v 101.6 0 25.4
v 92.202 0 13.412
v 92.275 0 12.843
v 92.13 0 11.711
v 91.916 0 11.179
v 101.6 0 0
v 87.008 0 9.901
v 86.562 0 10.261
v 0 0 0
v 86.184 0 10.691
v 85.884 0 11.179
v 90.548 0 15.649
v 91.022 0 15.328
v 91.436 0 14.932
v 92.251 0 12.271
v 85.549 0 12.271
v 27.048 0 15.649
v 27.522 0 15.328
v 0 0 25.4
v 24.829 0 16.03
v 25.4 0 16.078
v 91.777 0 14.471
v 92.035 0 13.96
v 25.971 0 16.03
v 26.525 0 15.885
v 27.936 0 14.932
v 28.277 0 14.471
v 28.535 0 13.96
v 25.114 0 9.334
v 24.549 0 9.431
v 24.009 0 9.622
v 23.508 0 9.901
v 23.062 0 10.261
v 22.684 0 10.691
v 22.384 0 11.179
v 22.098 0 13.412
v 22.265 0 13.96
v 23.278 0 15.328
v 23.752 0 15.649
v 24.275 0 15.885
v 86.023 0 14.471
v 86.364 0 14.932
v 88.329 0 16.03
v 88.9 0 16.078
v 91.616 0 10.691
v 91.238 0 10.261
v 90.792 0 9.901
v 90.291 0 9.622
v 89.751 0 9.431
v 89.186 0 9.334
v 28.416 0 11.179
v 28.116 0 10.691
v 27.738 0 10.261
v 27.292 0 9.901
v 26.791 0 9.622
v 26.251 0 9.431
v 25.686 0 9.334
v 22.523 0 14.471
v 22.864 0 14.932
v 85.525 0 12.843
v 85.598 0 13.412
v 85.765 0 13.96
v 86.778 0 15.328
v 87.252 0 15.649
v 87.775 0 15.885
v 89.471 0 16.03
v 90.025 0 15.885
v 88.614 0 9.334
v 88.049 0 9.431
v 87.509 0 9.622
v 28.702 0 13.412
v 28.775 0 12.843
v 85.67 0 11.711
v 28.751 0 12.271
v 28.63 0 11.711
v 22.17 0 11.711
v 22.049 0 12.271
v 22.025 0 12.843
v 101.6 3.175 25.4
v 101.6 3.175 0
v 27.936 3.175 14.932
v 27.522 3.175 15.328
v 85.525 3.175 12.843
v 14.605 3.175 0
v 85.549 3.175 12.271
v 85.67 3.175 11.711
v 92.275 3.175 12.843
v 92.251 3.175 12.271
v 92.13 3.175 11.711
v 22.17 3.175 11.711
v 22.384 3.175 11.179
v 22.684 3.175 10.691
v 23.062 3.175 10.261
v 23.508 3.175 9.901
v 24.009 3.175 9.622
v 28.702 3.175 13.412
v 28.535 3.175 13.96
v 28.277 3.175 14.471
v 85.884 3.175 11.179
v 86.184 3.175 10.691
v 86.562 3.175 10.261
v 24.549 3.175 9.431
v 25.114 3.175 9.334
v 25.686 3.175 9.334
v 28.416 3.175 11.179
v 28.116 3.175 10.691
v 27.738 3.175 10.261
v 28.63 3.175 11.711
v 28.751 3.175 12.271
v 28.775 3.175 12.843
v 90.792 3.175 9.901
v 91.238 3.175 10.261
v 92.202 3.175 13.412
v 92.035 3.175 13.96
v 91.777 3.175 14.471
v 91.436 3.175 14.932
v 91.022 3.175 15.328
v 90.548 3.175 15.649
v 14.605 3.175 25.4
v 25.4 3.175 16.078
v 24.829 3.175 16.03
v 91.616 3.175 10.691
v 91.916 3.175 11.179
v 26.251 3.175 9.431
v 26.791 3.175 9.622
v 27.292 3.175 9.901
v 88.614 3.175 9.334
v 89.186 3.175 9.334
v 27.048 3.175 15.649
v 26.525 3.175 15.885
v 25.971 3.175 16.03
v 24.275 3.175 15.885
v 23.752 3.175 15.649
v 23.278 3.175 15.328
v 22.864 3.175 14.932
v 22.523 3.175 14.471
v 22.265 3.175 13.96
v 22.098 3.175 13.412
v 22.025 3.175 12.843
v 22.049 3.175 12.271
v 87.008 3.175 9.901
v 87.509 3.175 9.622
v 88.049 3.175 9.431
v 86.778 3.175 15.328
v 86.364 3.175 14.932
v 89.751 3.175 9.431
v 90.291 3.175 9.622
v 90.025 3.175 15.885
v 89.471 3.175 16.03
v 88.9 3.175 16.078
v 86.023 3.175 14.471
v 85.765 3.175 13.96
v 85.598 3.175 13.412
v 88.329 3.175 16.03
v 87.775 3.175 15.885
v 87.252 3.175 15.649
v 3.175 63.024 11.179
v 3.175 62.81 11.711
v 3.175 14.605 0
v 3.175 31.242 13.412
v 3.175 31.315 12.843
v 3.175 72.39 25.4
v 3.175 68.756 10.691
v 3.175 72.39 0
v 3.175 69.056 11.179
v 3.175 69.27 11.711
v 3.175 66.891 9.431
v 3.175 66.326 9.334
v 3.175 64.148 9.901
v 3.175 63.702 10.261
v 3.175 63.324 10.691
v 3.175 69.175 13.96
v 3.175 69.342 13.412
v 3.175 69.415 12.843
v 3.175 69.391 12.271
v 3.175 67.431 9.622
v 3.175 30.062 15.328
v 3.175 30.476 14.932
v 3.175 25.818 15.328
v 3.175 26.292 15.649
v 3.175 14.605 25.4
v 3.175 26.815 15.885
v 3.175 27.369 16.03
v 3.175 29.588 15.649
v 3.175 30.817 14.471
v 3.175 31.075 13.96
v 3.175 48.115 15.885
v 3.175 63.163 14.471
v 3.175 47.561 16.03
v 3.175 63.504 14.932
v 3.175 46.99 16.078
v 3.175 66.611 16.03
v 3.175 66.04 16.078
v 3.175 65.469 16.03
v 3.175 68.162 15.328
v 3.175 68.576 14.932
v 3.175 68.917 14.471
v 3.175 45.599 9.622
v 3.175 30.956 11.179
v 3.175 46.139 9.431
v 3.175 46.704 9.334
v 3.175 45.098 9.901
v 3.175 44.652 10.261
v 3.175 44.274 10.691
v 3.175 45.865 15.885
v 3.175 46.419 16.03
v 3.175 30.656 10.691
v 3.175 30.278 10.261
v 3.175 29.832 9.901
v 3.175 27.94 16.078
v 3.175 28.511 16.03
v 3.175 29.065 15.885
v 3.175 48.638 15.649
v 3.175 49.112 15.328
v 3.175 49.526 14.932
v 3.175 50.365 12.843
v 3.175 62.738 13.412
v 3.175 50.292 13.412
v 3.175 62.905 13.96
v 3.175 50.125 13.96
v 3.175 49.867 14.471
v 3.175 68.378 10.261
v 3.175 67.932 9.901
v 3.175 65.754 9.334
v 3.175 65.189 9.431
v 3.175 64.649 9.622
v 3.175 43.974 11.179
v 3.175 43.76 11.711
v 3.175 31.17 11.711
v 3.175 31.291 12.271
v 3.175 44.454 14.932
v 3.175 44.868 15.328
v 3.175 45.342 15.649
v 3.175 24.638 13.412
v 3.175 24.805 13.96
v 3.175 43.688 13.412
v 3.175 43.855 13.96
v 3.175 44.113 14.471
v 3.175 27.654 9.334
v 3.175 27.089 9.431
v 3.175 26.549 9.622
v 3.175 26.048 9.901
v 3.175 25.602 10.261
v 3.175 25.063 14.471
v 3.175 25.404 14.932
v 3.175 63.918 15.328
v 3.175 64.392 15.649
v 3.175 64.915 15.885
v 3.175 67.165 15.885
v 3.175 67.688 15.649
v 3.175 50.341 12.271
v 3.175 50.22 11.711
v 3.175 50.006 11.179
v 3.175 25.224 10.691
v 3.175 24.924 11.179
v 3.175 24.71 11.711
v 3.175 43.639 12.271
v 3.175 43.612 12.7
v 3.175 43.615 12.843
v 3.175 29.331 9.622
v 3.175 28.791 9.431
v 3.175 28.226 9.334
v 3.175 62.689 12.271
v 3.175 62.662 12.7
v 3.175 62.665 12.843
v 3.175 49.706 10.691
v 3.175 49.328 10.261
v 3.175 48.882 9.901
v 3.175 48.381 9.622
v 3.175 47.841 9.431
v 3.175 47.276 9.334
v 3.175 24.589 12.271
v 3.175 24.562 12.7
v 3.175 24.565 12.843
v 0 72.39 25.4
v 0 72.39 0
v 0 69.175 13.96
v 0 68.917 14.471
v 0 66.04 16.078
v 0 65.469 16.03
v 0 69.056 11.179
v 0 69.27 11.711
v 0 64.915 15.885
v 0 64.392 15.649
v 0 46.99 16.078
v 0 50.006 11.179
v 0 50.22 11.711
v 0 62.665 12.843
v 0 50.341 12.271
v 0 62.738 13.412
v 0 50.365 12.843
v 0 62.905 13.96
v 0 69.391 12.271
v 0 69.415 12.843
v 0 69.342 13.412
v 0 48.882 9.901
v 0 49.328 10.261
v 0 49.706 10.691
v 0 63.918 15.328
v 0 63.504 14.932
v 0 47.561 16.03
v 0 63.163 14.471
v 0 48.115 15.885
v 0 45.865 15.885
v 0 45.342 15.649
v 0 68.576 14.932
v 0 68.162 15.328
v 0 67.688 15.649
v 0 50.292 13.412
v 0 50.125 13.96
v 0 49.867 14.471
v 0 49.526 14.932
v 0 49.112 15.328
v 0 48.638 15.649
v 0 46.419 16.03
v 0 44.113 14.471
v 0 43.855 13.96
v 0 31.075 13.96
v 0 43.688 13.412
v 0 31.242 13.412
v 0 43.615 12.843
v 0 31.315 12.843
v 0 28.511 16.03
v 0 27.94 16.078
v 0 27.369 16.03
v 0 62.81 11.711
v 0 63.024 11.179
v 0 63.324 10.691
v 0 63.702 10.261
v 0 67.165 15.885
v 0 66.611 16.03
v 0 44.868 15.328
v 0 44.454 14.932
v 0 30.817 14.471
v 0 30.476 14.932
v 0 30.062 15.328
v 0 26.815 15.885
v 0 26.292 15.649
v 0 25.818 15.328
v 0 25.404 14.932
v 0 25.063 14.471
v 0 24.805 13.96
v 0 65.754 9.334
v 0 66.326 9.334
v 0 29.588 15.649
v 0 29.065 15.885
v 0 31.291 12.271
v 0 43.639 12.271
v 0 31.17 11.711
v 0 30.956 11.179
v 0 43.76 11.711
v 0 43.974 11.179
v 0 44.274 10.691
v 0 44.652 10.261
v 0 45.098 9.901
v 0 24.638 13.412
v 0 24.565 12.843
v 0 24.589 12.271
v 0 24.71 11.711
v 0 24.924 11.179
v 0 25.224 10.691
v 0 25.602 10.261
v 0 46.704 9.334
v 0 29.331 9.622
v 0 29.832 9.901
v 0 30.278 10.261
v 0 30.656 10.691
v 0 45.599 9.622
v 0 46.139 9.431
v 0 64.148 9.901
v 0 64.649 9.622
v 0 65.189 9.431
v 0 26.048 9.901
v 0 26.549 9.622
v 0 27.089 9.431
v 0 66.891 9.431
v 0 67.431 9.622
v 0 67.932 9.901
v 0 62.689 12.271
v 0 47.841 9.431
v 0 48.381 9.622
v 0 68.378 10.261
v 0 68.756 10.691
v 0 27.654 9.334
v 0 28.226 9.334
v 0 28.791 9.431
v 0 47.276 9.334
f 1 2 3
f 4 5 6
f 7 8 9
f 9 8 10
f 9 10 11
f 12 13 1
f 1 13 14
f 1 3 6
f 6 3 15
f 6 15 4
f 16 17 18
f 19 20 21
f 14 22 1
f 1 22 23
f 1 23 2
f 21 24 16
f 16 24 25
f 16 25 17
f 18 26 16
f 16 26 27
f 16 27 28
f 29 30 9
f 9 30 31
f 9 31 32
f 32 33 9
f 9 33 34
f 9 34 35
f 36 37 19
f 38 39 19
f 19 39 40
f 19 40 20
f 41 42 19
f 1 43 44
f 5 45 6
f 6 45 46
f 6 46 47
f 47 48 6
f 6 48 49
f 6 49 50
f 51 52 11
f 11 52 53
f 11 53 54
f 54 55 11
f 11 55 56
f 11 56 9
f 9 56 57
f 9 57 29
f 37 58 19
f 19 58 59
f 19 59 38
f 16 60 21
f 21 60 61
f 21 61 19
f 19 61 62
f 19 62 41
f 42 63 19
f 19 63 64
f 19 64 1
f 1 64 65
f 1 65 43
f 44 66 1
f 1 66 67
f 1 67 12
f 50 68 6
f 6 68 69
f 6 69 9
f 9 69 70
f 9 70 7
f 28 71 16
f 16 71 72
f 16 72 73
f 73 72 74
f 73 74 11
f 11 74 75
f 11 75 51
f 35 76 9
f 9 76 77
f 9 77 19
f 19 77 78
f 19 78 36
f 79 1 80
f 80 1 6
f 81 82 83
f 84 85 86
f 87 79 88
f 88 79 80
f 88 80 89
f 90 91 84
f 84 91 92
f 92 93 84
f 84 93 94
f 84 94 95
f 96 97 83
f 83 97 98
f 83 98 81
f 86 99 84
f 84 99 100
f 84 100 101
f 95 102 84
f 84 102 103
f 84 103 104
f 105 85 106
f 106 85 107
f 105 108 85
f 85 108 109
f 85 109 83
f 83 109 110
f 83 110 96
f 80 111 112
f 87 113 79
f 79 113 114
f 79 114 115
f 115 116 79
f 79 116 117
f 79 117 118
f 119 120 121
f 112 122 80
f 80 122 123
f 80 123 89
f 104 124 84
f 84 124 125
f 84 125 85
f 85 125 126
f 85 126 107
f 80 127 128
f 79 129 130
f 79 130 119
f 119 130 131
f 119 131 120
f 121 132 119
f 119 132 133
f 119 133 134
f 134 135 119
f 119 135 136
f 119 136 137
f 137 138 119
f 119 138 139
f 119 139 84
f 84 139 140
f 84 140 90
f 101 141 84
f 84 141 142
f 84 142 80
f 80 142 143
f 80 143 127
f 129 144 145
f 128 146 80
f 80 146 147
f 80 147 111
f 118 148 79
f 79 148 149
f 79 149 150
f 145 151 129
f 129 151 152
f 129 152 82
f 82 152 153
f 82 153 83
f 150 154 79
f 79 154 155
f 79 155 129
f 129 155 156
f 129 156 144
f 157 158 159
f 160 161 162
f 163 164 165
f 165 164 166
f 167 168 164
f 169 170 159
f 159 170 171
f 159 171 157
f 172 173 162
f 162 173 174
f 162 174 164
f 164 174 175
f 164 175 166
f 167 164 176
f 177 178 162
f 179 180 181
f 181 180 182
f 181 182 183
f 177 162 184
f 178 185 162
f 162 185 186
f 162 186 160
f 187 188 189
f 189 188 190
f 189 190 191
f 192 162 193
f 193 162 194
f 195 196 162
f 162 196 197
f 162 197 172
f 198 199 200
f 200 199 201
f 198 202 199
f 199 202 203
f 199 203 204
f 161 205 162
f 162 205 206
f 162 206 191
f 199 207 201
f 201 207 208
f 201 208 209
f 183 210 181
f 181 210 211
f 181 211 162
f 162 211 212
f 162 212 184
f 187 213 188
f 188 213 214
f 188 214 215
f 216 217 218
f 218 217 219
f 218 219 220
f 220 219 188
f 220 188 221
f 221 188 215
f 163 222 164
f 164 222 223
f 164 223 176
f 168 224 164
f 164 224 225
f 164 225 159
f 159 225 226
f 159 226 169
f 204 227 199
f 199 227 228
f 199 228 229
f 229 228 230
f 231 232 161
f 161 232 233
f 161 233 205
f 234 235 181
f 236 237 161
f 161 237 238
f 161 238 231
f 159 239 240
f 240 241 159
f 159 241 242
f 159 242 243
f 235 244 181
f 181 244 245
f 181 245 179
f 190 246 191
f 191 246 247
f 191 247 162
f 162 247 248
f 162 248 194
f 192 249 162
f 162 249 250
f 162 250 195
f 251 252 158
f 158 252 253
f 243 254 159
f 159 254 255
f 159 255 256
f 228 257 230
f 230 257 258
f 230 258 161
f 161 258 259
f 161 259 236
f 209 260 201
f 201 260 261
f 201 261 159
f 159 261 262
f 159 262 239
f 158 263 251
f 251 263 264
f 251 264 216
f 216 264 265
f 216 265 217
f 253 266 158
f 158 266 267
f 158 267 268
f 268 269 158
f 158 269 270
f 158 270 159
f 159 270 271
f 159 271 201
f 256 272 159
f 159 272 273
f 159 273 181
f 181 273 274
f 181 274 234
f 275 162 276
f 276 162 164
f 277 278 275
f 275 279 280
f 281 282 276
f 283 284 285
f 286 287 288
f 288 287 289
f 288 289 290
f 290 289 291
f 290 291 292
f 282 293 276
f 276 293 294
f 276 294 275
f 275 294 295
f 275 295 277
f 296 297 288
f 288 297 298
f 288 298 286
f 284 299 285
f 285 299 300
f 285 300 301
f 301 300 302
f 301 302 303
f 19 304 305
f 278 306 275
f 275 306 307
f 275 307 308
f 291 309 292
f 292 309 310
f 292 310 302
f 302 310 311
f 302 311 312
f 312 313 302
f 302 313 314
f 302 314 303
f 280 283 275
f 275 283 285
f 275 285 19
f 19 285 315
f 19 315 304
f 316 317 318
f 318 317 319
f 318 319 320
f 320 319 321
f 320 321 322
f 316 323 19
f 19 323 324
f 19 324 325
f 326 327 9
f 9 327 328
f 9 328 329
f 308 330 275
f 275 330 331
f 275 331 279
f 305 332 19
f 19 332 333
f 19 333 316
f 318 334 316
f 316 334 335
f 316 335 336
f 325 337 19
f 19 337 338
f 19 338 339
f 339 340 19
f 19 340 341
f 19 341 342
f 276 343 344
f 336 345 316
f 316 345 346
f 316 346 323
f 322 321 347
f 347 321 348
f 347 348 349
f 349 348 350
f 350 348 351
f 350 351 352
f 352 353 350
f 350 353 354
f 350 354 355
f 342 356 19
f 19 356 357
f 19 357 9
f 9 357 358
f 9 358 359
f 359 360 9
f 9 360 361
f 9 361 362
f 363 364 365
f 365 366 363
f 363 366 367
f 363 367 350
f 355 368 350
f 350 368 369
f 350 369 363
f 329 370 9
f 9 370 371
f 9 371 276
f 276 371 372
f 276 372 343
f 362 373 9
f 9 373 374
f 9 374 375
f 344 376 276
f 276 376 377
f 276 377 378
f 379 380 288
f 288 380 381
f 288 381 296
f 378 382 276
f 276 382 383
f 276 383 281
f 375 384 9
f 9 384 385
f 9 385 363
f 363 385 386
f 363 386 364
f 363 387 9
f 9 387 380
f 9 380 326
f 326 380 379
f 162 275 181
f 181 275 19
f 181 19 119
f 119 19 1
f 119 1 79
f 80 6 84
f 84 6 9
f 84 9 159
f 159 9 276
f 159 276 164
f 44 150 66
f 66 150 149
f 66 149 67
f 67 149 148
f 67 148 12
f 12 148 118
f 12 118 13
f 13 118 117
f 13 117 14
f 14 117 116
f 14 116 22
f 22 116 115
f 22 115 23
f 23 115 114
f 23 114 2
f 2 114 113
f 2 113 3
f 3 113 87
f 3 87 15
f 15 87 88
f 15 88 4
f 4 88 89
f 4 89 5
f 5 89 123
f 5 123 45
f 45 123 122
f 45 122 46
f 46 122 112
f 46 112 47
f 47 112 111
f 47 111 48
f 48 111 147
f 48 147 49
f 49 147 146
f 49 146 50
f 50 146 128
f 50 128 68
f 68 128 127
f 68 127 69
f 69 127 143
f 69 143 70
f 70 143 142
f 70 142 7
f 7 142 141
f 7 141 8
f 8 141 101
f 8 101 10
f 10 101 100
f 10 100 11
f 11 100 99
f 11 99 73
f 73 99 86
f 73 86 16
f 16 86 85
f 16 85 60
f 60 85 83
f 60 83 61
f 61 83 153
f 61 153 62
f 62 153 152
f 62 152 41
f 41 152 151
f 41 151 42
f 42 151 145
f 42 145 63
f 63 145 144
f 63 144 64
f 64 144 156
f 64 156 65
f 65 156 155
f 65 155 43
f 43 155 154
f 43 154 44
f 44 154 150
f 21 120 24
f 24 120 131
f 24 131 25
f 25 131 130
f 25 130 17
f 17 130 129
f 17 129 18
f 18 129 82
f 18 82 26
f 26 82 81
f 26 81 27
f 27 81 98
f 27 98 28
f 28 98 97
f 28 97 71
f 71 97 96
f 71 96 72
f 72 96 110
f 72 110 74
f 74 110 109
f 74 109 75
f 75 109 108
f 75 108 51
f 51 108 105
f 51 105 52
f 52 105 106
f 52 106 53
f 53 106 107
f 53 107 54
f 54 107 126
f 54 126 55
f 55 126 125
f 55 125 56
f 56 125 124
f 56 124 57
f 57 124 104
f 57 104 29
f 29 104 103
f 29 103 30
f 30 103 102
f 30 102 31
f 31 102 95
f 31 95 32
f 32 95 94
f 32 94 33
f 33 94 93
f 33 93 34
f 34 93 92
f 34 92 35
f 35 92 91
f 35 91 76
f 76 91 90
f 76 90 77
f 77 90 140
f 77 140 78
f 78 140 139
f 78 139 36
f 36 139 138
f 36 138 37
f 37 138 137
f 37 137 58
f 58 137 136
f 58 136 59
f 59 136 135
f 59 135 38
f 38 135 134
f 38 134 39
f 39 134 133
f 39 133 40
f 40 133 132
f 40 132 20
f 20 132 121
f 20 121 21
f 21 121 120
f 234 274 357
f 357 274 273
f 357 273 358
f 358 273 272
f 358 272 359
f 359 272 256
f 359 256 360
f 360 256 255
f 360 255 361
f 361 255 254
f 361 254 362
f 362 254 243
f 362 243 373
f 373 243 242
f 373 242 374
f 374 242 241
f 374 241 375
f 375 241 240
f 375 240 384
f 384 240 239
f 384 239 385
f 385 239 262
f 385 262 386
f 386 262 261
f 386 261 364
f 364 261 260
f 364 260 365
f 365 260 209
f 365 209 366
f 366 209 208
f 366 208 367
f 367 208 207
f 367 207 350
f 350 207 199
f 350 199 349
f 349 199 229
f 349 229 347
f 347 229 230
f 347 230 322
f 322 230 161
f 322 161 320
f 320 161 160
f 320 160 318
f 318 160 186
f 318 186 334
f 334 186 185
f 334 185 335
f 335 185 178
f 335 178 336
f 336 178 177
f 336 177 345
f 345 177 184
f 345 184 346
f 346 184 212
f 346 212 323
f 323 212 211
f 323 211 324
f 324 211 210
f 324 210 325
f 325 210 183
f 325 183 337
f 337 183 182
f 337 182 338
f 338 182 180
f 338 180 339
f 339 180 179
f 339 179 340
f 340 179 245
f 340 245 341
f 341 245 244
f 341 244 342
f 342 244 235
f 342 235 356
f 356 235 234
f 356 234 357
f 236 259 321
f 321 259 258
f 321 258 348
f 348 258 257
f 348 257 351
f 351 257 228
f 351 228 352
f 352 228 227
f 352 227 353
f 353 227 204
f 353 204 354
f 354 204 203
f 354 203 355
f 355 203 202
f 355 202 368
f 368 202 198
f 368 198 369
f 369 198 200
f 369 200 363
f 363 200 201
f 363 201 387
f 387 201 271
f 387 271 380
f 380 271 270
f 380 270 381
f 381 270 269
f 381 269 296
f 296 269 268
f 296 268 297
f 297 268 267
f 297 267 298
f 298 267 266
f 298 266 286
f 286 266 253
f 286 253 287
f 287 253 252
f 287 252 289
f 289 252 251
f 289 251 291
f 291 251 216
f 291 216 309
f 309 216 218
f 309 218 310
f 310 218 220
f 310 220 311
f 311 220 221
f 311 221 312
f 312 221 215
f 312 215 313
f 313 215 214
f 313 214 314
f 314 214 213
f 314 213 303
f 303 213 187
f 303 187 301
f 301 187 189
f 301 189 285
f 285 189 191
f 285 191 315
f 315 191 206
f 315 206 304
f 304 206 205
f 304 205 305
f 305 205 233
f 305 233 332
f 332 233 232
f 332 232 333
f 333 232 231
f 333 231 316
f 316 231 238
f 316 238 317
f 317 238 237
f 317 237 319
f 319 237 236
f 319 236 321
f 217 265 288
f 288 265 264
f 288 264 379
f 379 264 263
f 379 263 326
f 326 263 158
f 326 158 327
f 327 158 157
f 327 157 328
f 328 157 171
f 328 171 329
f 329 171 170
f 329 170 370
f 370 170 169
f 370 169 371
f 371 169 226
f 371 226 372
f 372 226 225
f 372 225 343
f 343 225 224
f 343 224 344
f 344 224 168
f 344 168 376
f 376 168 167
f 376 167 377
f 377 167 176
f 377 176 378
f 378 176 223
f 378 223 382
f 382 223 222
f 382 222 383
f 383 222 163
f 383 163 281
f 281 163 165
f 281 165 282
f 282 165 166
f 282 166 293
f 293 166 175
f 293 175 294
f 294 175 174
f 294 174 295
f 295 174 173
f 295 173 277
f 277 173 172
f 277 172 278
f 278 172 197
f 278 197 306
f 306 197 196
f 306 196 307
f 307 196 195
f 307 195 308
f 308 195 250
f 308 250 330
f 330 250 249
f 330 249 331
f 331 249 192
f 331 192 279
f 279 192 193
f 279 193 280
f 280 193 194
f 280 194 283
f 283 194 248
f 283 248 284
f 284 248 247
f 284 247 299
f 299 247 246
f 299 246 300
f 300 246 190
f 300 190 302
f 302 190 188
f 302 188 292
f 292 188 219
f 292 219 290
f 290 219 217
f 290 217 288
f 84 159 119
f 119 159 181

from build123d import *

# Parameters (mm, degrees)
BOSS_EXTRUDE1_DEPTH = 25.4
SKETCH2_R           = 3.3782
CUT_EXTRUDE1_DEPTH  = 25.4
SKETCH3_R           = 3.3782
CUT_EXTRUDE2_DEPTH  = 128.310769772
BOSS_EXTRUDE2_DEPTH = 25.4


with BuildPart() as part:
    # Sketch1 → Boss-Extrude1 (new body)
    with BuildSketch(Plane.XY):
        Polygon((0, 3.175), (0, 0), (3.175, 0), (101.6, 0), (101.6, 3.175), (3.175, 3.175), (3.175, 72.39), (0, 72.39), align=None)
    extrude(amount=BOSS_EXTRUDE1_DEPTH)

    # Sketch2 → Cut-Extrude1 (cut)
    with BuildSketch(Plane(origin=(0, 3.175, 0), x_dir=(1, 0, 0), z_dir=(0, 1, 0))):
        with Locations(Location((88.9, -12.7, 0), (0, 0, 270))):
            Circle(SKETCH2_R)
        with Locations(Location((25.4, -12.7, 0), (0, 0, 270))):
            Circle(SKETCH2_R)
    extrude(amount=-CUT_EXTRUDE1_DEPTH, mode=Mode.SUBTRACT)

    # Sketch3 → Cut-Extrude2 (cut, through all)
    with BuildSketch(Plane.ZY):
        with Locations((12.7, 27.94)):
            Circle(SKETCH3_R)
        with Locations((12.7, 46.99)):
            Circle(SKETCH3_R)
        with Locations((12.7, 66.04)):
            Circle(SKETCH3_R)
    extrude(amount=-CUT_EXTRUDE2_DEPTH, mode=Mode.SUBTRACT)

    # Sketch4 → Boss-Extrude2 (add)
    with BuildSketch(Plane.XY.offset(25.4)):
        Polygon((3.175, 14.605), (14.605, 3.175), (3.175, 3.175), align=None)
    extrude(amount=-BOSS_EXTRUDE2_DEPTH)


solid = part.part
